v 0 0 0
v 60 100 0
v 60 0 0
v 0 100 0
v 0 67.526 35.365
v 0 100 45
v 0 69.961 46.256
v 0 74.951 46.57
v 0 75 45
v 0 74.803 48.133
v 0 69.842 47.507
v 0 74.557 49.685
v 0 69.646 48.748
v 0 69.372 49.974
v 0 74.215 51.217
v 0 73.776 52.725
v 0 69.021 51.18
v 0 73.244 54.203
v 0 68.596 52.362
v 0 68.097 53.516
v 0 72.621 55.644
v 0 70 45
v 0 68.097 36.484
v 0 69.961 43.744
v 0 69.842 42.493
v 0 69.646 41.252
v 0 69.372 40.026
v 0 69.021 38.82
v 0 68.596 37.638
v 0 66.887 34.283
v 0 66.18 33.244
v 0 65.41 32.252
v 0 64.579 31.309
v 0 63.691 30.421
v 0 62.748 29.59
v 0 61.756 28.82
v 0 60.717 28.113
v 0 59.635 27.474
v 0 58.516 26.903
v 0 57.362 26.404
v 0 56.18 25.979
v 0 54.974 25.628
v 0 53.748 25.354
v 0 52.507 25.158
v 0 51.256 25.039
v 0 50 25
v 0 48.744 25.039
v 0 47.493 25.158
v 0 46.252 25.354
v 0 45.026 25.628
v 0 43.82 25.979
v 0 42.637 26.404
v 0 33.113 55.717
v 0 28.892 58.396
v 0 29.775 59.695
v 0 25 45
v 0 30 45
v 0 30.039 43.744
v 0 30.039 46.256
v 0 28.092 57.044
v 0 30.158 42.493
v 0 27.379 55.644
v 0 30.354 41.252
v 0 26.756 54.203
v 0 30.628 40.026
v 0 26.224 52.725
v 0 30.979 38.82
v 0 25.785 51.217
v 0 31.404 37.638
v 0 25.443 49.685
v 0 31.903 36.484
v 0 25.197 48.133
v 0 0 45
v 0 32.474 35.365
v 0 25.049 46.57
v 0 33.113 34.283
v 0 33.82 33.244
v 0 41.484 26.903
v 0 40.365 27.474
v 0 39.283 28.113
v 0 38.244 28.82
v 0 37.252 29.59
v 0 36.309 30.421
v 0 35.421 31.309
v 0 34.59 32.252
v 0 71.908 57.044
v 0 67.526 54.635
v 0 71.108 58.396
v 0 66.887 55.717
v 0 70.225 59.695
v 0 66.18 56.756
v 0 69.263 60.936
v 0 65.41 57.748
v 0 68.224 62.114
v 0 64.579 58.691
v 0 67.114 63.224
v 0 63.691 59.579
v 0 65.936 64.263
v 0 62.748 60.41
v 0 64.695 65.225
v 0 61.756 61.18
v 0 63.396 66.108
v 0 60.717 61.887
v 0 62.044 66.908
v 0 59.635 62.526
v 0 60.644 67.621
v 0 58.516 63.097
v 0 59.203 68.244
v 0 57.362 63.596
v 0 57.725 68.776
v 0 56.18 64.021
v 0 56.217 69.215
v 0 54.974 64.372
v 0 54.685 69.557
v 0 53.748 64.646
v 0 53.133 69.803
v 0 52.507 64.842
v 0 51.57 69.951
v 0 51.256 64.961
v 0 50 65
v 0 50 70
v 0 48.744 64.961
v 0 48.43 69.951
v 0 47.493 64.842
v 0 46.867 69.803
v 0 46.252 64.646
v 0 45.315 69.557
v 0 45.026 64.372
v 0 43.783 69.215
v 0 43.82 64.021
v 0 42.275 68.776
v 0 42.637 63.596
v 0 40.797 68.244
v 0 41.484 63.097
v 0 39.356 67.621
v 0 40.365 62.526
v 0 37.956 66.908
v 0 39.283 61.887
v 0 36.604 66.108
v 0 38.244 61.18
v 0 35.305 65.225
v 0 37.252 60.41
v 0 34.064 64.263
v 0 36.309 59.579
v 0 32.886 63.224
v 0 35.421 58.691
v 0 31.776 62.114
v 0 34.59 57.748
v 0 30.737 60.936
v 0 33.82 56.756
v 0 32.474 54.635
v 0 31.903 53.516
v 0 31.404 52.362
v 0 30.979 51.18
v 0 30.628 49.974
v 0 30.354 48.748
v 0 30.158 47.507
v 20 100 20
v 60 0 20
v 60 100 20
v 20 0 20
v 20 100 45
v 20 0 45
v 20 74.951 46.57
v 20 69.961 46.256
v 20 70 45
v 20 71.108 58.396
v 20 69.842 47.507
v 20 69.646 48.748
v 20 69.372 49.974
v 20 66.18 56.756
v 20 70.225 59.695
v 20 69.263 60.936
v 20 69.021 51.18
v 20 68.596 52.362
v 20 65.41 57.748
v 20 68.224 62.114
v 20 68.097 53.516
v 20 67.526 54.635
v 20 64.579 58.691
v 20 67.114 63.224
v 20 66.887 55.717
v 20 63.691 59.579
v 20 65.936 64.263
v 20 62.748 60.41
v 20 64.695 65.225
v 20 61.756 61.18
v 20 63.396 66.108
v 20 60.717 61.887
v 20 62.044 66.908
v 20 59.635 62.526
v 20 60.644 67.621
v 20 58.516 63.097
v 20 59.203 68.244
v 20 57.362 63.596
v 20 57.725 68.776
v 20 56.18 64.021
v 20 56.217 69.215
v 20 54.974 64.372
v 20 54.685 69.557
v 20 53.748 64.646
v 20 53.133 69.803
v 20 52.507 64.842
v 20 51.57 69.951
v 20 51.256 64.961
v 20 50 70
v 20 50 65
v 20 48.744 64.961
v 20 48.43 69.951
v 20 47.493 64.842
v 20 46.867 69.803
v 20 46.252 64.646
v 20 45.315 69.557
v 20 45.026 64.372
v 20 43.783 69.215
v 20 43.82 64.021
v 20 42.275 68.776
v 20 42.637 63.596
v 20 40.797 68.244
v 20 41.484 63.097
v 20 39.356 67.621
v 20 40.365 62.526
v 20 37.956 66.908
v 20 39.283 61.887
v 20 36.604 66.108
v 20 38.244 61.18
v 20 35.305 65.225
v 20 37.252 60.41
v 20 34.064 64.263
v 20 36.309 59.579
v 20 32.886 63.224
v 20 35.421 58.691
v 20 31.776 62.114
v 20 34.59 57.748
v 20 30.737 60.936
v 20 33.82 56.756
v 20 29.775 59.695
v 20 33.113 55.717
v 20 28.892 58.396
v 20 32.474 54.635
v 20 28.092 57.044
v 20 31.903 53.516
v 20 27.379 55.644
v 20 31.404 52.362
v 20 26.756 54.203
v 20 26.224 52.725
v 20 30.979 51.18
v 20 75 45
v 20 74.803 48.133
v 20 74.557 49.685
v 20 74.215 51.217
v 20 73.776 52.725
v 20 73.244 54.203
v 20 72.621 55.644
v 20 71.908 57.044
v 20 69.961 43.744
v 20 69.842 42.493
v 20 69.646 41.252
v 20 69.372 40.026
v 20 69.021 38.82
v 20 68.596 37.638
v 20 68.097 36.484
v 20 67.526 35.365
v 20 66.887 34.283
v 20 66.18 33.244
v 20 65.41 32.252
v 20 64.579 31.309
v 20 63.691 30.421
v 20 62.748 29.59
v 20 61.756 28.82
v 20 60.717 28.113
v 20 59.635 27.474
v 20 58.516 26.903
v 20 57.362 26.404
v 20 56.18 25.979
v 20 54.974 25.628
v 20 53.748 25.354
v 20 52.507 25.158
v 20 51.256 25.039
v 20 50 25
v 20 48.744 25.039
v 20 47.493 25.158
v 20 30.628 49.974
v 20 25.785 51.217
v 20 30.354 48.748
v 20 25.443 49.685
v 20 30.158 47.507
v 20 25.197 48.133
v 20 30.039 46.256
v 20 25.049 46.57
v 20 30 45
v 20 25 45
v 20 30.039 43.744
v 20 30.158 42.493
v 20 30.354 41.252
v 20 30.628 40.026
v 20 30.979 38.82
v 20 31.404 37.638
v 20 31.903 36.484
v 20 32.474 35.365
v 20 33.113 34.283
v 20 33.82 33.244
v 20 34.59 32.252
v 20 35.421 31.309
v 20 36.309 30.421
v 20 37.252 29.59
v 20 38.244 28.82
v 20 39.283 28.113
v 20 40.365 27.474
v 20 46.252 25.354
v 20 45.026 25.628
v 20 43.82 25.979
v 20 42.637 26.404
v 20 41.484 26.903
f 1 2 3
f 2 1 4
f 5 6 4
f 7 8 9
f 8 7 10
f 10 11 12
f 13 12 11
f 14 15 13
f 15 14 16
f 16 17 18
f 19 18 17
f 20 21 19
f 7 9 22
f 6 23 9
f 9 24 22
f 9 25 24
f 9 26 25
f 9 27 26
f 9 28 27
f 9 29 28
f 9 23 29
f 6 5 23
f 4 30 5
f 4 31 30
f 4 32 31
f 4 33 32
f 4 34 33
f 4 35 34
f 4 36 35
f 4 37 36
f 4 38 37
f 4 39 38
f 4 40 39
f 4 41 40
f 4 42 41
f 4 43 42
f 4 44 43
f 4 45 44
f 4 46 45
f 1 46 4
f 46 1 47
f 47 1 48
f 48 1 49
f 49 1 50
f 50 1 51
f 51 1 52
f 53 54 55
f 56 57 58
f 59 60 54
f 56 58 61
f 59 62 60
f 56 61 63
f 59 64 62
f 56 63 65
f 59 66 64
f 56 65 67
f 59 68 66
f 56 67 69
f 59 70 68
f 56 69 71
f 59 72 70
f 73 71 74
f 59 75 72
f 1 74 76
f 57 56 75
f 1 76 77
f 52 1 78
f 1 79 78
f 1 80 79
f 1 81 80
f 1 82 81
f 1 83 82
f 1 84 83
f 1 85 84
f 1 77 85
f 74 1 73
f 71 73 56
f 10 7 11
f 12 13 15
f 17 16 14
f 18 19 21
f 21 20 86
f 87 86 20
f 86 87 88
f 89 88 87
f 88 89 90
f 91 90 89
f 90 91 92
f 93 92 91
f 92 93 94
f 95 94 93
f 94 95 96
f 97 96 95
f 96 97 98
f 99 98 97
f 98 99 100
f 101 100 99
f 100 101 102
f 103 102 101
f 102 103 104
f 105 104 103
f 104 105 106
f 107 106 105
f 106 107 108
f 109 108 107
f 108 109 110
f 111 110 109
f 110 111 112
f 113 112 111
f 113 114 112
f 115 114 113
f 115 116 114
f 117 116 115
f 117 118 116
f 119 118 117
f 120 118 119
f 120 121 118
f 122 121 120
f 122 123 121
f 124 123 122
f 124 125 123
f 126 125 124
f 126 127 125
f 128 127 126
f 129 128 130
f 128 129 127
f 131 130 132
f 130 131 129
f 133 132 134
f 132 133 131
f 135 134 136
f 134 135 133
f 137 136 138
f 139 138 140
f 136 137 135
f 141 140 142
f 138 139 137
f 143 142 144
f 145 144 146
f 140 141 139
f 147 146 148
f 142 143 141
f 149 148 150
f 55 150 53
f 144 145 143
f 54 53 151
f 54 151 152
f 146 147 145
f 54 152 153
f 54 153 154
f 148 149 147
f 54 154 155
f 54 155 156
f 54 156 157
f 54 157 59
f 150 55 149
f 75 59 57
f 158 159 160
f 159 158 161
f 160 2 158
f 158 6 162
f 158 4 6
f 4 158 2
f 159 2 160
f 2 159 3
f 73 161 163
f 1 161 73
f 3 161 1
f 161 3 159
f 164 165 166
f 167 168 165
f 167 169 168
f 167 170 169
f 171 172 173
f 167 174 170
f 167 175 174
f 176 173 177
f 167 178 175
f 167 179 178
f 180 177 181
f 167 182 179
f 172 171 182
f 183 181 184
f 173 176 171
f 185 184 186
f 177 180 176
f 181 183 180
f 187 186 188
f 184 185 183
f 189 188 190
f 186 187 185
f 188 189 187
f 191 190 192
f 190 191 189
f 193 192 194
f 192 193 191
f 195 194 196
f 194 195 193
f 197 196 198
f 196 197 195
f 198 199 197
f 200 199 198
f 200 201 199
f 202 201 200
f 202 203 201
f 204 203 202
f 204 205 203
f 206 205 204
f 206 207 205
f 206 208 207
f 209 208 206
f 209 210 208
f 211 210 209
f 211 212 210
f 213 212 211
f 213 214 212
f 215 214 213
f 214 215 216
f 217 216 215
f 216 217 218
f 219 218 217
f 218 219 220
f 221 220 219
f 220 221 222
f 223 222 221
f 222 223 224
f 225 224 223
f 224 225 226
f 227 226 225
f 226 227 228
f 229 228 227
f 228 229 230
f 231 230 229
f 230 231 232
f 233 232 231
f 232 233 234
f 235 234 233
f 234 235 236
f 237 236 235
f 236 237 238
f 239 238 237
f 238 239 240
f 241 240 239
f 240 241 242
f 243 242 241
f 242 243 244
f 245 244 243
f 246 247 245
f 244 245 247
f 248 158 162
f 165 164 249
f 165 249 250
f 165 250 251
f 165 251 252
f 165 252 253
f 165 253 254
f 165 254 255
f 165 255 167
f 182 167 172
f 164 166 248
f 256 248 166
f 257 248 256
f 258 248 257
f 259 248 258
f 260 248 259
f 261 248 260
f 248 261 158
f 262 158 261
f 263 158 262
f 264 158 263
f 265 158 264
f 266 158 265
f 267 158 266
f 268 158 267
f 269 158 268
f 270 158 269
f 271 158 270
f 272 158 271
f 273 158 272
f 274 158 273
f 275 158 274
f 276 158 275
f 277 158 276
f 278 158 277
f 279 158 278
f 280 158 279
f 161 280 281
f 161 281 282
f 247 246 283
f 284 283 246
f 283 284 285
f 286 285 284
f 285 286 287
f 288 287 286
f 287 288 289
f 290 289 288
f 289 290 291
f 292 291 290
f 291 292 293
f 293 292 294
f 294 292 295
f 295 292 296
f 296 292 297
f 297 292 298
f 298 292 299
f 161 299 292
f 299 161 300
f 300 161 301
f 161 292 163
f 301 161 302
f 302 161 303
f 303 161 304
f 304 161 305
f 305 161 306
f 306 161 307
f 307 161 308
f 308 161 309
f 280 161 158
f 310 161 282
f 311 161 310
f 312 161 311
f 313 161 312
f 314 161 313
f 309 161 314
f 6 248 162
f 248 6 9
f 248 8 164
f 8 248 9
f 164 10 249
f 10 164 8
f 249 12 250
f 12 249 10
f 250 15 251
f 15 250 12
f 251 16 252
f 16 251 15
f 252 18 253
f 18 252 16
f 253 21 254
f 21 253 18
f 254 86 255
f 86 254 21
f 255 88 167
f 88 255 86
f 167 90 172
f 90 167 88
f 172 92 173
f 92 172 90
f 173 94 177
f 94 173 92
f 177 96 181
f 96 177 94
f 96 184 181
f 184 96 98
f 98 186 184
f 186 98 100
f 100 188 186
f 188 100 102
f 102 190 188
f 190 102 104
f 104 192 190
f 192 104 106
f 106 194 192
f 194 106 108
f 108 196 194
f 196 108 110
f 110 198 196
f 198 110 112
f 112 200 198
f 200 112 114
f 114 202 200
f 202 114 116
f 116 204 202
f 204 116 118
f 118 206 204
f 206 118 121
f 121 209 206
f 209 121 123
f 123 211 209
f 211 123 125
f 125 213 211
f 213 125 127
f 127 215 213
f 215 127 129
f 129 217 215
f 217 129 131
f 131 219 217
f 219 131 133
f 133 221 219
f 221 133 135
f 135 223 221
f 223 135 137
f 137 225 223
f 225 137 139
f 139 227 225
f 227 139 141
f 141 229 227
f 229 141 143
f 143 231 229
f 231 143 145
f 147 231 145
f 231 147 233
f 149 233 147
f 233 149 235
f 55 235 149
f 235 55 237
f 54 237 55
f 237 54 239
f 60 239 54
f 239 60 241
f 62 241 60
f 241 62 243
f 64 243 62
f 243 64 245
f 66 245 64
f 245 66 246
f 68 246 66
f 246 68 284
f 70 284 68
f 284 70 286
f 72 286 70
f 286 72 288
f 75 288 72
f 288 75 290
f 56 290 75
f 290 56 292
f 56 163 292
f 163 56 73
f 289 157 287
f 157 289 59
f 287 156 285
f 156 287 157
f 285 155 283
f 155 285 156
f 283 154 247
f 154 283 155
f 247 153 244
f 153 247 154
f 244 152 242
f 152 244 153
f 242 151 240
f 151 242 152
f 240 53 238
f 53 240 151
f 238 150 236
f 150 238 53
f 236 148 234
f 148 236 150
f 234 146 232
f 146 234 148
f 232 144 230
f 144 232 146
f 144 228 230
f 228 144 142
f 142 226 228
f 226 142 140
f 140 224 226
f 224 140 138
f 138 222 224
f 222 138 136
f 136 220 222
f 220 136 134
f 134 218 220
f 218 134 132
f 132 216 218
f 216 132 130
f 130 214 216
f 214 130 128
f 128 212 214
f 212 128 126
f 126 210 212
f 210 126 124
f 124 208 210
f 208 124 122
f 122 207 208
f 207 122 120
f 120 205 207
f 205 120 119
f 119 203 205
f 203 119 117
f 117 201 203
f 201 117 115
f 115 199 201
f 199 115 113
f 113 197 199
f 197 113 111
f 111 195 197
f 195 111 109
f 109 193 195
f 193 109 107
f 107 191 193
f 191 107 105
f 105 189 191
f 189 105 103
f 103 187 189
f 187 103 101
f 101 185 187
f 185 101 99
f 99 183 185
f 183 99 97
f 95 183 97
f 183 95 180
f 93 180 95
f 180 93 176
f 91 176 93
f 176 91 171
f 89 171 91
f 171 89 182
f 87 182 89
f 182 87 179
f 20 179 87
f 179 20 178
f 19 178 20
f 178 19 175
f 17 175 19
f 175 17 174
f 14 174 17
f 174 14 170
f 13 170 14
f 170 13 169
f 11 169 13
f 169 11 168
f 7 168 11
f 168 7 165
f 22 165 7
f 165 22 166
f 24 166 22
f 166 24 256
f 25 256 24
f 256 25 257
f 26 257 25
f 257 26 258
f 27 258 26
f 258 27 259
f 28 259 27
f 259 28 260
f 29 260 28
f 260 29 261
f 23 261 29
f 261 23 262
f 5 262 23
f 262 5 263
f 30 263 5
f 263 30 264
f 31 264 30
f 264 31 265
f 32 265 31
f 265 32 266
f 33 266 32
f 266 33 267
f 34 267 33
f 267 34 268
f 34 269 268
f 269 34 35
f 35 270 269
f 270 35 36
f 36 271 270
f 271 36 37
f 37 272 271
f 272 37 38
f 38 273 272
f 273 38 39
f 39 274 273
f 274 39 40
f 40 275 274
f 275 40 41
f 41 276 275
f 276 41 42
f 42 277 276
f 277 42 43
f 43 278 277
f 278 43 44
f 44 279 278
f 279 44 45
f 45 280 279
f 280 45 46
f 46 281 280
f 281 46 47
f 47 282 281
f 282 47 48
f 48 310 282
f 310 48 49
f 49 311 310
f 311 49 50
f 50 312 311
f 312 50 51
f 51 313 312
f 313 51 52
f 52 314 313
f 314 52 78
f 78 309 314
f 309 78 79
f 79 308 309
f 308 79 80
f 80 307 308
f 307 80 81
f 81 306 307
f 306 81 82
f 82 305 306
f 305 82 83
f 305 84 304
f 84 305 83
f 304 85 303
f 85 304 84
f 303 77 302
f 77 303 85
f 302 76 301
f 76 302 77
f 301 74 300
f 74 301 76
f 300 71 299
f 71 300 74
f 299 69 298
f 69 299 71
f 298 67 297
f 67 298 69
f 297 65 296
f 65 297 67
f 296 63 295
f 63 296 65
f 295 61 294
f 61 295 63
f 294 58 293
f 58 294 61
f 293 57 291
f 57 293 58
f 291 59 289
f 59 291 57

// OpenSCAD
$fn = 100;

// horizontal plate
linear_extrude(20) square([60,100]);

// vertical part
rotate([0,90,0])
linear_extrude(20) 
    translate([-45,0]) {
        difference() {
            union() {
                square([45,100]);
                translate([0,50]) circle(25);
            }
            translate([0,50]) circle(20);
        }
    }
